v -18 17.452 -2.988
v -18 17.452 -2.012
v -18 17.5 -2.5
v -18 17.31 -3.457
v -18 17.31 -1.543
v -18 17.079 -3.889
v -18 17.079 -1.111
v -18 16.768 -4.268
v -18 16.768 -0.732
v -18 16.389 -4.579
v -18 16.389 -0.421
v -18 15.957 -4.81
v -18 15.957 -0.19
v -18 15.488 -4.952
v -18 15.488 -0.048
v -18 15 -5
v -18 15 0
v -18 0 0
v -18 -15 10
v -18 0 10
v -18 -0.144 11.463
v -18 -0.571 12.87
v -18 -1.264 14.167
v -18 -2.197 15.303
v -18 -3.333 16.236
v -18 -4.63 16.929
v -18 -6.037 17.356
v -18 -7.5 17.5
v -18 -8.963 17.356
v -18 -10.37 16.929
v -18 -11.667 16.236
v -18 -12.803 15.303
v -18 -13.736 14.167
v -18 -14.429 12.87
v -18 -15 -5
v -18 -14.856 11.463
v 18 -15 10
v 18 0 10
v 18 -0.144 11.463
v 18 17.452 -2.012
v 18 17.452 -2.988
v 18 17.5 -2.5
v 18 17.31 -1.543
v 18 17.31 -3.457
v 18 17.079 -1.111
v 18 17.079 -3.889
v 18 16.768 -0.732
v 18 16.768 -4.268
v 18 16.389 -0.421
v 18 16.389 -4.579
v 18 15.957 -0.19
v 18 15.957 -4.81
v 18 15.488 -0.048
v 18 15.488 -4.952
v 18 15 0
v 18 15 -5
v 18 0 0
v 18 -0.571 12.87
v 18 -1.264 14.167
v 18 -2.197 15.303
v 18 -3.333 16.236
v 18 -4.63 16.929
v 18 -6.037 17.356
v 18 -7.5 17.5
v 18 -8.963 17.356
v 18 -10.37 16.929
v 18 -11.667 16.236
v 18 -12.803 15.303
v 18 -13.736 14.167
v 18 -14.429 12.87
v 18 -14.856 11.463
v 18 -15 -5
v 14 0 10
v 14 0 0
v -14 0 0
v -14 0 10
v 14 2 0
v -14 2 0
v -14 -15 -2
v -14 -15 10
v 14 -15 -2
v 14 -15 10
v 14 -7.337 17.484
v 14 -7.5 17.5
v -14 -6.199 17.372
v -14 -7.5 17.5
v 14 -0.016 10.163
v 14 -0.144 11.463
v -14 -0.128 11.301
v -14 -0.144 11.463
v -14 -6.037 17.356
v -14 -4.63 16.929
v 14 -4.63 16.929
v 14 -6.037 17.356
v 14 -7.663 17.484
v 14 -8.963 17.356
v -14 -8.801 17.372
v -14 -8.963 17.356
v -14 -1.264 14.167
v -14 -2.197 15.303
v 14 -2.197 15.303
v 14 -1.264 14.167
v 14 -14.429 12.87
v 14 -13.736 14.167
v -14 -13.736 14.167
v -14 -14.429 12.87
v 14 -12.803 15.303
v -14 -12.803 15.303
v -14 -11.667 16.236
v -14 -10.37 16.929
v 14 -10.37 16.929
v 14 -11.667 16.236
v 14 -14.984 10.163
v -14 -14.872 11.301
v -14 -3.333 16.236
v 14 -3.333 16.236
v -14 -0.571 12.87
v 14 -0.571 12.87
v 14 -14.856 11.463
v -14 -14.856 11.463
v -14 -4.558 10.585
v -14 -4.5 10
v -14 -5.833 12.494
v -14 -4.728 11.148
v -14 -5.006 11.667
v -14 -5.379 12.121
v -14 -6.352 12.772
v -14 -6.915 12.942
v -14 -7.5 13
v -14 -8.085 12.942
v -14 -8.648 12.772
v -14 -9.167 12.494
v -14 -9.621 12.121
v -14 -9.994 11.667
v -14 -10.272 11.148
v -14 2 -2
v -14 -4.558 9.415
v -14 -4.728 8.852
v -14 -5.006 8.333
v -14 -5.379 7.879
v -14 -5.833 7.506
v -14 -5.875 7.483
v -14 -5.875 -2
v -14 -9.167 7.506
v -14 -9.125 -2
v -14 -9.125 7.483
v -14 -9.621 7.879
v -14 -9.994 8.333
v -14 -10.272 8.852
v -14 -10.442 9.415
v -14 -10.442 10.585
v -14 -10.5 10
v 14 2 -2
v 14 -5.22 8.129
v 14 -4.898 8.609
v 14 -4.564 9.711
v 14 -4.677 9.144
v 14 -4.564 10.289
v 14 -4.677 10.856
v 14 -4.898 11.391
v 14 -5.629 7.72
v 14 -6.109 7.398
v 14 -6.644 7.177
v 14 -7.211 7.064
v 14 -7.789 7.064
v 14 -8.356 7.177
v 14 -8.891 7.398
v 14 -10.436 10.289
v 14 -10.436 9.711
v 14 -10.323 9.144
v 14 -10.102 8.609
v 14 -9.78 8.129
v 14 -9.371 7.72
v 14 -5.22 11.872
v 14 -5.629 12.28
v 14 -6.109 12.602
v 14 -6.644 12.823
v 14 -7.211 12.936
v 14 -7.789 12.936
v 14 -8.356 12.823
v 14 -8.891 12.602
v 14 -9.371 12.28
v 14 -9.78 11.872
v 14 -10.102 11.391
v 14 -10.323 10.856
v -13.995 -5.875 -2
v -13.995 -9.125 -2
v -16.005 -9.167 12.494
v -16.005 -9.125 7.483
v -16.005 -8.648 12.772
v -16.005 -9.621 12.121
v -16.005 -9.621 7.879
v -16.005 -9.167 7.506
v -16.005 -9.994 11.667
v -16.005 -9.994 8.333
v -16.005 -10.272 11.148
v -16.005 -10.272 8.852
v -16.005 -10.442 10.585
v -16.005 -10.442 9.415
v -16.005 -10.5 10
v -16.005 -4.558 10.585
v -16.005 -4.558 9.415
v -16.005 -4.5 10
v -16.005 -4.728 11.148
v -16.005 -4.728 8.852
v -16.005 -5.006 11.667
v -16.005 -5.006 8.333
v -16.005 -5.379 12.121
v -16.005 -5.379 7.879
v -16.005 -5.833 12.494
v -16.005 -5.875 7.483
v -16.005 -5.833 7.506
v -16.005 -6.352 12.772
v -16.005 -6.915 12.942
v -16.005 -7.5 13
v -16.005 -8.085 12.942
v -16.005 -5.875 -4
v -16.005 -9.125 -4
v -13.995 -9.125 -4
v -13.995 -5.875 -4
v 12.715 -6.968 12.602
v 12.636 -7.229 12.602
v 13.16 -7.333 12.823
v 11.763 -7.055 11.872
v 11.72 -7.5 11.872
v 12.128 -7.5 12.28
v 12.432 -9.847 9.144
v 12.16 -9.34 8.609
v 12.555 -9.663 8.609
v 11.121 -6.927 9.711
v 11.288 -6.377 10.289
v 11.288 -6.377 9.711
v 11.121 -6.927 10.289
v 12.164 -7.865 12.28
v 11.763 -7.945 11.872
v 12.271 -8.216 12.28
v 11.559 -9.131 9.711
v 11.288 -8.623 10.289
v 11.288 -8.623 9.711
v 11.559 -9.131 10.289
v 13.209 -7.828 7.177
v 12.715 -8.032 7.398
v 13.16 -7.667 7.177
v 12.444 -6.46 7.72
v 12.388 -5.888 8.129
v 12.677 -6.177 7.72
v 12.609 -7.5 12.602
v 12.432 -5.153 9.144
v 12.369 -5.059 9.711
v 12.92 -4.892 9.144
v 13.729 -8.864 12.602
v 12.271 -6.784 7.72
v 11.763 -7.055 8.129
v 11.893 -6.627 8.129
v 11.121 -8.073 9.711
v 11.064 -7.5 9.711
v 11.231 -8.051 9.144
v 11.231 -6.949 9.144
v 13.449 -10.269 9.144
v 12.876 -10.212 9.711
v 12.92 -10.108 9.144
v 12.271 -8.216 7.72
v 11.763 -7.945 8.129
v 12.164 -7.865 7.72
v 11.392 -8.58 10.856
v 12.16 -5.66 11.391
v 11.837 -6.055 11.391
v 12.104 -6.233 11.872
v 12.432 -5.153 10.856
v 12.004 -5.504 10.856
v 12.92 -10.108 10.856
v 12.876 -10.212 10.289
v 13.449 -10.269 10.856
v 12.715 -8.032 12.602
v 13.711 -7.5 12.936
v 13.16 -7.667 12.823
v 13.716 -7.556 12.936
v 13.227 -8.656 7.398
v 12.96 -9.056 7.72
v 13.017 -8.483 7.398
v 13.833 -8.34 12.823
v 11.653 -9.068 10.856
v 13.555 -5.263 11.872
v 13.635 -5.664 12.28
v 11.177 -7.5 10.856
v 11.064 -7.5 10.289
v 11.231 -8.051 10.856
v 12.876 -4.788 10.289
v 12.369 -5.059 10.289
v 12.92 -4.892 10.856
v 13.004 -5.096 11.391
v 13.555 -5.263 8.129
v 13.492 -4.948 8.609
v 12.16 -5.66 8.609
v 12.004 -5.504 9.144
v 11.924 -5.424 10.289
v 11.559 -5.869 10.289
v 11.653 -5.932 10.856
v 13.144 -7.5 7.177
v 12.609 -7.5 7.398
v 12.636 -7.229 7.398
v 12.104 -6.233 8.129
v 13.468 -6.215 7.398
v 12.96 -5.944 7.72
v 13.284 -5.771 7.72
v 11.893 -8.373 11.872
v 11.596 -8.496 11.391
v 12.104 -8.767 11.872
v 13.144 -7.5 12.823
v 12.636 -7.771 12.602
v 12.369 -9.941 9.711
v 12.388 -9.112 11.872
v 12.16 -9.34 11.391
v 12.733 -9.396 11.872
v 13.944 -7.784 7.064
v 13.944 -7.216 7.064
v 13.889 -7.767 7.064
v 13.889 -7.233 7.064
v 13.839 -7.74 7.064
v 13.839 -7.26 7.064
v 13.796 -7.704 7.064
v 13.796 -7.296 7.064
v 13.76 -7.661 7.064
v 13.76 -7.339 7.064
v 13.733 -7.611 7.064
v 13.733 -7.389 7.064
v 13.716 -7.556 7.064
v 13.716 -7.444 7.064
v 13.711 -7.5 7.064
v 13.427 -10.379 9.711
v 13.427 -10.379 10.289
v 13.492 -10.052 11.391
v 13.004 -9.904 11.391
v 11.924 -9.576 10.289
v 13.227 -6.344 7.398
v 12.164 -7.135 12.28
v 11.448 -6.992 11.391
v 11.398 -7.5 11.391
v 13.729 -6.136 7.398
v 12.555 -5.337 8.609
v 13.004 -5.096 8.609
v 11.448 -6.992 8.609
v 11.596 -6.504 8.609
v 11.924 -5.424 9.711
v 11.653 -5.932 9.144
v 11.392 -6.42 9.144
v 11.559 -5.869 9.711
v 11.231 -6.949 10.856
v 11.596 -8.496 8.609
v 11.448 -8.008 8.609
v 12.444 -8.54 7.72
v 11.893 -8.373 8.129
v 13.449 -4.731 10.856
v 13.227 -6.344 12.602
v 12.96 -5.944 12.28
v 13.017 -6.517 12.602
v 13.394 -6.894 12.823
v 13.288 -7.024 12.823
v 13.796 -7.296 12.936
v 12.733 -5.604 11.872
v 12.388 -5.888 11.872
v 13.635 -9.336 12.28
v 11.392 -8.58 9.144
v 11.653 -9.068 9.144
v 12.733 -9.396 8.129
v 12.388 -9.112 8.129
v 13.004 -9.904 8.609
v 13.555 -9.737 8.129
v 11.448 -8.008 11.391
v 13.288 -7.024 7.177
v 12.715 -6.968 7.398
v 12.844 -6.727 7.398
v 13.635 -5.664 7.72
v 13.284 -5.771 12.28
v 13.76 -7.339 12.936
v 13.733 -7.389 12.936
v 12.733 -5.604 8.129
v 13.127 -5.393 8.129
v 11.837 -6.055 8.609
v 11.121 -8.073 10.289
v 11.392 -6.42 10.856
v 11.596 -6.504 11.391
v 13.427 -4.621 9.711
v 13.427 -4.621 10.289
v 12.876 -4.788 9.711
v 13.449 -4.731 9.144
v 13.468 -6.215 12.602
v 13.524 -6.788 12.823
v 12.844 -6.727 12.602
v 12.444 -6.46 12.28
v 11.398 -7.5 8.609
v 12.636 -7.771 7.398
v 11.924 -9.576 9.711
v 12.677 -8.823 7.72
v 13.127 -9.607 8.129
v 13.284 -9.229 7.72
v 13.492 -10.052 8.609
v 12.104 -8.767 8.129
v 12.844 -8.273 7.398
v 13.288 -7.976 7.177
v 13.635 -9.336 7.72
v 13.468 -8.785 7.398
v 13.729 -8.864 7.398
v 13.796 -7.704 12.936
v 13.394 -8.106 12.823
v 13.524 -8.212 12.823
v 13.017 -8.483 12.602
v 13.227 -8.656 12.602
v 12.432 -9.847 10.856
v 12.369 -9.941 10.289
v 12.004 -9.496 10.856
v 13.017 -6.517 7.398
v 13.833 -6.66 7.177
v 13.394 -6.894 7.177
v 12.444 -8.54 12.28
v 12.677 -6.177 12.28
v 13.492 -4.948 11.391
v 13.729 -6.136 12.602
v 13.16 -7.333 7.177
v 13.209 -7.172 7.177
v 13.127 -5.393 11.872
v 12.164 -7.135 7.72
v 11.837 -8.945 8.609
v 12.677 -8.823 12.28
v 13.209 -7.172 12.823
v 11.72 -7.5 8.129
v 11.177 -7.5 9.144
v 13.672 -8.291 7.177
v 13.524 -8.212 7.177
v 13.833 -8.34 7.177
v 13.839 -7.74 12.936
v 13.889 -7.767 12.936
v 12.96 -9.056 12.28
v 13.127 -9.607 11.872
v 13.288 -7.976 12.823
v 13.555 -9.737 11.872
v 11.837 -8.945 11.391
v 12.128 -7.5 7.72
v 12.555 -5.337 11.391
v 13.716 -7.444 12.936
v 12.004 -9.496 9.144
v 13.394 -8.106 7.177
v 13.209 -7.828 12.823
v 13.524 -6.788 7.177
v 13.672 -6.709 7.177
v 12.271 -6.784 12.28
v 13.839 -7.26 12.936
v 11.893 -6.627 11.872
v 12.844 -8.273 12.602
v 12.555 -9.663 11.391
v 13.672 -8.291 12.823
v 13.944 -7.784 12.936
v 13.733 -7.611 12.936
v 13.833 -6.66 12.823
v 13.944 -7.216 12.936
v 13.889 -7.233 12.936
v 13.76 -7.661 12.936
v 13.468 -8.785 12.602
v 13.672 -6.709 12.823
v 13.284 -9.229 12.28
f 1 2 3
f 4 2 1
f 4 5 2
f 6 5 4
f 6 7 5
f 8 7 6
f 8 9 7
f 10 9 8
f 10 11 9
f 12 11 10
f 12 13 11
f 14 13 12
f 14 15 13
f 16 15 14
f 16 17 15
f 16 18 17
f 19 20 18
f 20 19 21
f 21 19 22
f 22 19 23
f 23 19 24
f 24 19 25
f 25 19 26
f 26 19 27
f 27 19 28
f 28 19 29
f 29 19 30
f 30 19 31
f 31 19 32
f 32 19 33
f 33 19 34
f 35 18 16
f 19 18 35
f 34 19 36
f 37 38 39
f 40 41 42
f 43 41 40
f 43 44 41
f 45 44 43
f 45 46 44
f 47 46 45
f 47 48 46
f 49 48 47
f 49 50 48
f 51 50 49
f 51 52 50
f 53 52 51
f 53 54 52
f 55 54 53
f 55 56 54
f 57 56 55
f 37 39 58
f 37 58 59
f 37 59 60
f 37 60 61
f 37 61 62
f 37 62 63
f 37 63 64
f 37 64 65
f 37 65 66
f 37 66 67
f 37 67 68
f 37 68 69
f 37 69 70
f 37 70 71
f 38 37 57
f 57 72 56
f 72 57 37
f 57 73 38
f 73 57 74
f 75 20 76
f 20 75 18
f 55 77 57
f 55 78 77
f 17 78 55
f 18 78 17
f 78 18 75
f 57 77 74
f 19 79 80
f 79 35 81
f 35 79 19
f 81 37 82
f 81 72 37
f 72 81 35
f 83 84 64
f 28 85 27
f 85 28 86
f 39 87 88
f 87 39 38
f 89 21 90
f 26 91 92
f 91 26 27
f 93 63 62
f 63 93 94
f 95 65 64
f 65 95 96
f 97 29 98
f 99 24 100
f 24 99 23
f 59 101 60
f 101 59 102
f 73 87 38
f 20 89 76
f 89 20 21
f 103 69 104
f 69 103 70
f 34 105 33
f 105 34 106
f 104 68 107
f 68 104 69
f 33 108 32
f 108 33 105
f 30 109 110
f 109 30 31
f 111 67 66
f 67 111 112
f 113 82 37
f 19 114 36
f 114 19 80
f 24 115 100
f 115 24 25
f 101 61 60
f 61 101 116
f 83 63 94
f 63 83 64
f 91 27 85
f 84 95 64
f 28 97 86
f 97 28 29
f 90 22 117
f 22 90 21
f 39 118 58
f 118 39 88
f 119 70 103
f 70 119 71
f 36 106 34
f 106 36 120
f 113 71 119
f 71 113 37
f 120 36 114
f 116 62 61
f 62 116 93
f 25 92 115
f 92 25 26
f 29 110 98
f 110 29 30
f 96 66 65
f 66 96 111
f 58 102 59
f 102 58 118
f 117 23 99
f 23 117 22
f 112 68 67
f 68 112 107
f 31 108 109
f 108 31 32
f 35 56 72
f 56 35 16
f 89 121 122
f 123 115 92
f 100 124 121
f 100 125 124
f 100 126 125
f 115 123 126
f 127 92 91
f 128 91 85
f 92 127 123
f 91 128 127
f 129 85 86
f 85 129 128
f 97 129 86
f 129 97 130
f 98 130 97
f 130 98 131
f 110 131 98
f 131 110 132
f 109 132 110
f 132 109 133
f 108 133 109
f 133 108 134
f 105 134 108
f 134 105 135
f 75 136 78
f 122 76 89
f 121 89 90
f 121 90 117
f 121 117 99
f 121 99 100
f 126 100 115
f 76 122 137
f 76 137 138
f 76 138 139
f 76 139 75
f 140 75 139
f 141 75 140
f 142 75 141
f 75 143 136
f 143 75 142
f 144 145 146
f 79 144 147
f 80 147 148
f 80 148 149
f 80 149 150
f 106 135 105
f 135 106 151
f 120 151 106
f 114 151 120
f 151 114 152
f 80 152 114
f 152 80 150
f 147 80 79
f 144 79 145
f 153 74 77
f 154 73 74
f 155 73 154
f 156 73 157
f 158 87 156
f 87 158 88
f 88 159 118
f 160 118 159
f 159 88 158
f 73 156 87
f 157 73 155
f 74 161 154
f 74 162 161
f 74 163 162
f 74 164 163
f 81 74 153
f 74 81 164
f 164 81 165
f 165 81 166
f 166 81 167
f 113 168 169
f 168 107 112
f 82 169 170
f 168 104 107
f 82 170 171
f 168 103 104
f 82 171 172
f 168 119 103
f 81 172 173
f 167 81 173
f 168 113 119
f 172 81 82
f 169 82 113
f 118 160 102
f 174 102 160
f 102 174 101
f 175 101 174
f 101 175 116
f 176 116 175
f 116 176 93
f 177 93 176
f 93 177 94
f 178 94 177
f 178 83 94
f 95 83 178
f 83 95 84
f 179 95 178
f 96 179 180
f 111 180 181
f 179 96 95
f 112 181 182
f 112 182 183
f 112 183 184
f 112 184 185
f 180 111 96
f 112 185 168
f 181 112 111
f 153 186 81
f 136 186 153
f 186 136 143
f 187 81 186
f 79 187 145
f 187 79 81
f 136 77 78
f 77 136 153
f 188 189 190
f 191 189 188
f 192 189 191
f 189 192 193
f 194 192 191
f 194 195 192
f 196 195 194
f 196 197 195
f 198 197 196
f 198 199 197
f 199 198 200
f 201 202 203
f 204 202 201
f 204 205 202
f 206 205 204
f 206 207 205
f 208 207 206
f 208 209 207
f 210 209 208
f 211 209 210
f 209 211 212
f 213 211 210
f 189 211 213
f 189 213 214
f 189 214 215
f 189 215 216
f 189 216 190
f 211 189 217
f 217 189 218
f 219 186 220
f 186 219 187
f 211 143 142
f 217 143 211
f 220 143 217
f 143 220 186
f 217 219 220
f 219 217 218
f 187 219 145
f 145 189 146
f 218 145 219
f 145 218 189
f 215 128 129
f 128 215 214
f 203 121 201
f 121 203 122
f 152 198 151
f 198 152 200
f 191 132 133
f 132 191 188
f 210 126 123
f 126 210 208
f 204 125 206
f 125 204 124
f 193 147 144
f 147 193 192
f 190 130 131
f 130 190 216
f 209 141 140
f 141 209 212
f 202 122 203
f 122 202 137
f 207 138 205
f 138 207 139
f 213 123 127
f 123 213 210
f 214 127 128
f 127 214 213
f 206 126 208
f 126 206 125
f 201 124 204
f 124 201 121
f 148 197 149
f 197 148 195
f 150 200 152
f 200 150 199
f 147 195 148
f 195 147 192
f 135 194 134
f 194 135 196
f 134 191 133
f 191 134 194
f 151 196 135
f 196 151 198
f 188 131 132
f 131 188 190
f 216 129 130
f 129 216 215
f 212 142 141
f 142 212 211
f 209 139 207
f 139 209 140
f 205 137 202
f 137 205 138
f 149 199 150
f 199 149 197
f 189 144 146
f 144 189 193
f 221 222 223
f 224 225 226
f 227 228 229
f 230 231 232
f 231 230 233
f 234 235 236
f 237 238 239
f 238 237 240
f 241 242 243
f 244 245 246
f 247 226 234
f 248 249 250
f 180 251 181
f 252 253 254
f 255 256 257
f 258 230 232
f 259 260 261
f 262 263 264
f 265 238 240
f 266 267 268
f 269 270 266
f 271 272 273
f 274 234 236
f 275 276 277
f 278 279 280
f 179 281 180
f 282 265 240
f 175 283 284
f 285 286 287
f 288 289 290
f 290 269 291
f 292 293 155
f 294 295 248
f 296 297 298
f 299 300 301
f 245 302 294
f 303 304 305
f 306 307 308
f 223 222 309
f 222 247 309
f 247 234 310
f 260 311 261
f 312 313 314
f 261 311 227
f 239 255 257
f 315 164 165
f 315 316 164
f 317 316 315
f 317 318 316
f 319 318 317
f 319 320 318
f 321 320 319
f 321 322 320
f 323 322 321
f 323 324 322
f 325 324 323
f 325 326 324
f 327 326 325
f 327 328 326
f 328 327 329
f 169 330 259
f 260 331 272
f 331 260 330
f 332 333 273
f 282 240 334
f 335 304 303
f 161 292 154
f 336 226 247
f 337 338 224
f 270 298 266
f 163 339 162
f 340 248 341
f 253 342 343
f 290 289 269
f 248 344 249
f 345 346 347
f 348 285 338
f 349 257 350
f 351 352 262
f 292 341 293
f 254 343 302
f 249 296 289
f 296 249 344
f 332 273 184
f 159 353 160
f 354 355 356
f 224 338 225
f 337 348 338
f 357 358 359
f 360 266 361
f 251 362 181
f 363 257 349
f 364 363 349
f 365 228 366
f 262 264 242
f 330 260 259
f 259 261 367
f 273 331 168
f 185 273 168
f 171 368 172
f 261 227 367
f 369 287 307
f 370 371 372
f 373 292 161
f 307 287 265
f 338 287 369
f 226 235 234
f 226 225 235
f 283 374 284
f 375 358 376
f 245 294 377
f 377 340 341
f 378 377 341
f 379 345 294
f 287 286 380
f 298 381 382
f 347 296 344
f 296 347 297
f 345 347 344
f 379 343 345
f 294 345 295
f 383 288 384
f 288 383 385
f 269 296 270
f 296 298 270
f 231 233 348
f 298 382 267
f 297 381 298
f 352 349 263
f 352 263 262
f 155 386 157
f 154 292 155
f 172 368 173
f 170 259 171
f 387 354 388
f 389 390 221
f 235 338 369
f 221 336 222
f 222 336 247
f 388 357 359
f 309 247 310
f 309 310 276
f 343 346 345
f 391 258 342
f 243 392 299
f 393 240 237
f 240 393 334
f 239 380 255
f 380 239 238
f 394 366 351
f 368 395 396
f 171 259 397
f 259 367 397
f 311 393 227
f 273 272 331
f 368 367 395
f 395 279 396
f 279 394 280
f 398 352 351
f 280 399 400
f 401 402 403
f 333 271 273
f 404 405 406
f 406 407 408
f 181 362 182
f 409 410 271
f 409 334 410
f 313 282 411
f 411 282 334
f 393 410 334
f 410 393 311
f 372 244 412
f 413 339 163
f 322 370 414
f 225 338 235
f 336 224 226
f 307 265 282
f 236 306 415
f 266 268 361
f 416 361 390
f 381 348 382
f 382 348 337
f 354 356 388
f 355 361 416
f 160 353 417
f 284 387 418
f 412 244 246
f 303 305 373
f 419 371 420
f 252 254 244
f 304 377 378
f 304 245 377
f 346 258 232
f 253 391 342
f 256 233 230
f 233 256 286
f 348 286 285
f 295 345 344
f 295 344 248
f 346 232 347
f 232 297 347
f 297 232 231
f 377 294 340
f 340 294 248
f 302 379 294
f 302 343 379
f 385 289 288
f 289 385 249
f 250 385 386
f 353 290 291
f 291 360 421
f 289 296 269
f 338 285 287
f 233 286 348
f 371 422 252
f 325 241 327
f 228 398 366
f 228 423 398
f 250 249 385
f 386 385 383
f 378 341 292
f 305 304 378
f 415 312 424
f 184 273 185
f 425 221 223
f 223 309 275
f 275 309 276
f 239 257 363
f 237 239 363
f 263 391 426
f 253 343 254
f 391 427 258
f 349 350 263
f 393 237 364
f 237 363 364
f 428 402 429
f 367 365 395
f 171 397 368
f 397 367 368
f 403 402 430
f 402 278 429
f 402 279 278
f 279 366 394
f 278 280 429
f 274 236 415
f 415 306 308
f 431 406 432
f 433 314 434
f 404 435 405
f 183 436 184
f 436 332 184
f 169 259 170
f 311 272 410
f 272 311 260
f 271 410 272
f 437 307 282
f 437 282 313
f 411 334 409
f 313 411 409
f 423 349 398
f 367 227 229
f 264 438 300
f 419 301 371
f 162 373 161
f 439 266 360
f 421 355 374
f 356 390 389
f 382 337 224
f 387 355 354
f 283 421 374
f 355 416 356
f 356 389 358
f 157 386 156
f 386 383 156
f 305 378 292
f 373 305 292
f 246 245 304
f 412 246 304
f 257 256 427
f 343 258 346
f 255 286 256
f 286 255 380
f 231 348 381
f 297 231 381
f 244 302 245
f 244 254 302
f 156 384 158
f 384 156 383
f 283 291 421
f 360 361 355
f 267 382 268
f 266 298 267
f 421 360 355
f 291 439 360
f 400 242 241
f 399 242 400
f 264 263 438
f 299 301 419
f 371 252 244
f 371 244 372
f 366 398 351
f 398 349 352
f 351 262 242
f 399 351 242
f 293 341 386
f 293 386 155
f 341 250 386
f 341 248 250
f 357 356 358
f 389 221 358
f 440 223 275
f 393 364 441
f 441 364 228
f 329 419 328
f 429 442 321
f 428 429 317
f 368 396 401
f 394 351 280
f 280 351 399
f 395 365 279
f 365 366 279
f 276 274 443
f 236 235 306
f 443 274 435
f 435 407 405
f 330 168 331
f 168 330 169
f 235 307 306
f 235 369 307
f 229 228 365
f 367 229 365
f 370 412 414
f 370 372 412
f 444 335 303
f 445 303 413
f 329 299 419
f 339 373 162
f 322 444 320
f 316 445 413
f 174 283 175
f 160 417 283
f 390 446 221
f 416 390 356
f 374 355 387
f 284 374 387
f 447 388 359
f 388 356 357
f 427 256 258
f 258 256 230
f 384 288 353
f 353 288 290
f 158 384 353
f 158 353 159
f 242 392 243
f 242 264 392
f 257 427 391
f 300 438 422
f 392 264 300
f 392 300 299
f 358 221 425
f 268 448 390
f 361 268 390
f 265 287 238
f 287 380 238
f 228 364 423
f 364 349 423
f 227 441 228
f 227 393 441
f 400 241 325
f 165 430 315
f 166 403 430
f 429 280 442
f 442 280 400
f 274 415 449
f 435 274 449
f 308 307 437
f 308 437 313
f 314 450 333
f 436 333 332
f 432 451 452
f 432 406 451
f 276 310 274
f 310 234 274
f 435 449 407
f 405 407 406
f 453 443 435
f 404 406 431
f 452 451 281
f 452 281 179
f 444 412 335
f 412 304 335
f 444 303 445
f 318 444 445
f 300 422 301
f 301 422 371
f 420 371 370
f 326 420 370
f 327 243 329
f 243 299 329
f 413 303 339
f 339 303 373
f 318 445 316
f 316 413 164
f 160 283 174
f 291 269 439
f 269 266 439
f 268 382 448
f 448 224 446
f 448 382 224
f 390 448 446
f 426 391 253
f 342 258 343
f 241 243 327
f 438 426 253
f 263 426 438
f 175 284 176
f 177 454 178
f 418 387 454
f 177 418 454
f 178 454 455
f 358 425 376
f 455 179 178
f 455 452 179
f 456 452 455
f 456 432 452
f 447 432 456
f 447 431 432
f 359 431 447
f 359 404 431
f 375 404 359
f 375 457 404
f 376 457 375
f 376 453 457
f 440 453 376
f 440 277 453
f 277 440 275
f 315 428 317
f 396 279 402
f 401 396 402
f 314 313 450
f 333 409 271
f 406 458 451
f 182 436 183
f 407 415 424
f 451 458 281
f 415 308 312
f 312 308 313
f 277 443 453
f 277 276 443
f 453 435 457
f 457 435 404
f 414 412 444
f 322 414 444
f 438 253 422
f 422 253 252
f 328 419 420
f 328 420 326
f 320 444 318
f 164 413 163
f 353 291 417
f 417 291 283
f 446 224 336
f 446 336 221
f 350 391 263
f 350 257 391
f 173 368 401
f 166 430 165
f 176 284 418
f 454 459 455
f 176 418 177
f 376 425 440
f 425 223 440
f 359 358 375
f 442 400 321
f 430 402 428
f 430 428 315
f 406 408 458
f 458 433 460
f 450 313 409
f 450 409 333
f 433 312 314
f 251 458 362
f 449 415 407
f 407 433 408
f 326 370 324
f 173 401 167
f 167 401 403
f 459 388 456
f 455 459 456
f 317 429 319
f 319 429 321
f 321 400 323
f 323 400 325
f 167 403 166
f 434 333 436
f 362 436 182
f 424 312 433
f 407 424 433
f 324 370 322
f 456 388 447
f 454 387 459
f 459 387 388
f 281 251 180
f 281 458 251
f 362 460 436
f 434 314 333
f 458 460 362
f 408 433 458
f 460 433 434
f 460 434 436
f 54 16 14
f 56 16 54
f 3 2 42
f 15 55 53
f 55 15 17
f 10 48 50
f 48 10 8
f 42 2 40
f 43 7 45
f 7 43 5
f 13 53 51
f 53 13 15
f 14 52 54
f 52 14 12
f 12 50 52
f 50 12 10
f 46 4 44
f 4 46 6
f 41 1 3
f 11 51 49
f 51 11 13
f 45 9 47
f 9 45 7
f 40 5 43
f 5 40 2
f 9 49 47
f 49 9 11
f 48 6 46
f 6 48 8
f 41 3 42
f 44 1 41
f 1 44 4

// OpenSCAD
/* 
 * Copyright (c) 2017 by Paul-Louis Ageneau
 *
 * This program is free software: you can redistribute it and/or modify
 * it under the terms of the GNU General Public License as published by
 * the Free Software Foundation, either version 3 of the License, or
 * (at your option) any later version.
 *
 * This program is distributed in the hope that it will be useful,
 * but WITHOUT ANY WARRANTY; without even the implied warranty of
 * MERCHANTABILITY or FITNESS FOR A PARTICULAR PURPOSE.  See the
 * GNU General Public License for more details.
 *
 * You should have received a copy of the GNU General Public License
 * along with this program.  If not, see <http://www.gnu.org/licenses/>.
 */

leg_width = 28;
thickness = 5;
$fn = 32;

union() {
    difference() {
        union() {
            translate([0, 0, -thickness/2]) cube([leg_width+4*2, 30, thickness], center=true);
            translate([0, -7.5, 10/2]) union() {
                cube([leg_width+4*2, 15, 10], center=true);
                translate([0, 0, 5]) rotate([0, 90, 0]) cylinder(r = 15/2, h = leg_width+4*2, center = true);
            }
        }
        union() {
            translate([0, -7.5, 20/2]) cube([leg_width, 15+2*2, 20+2*2], center=true);
            translate([-leg_width/2-1, -7.5, 10-14/2]) cube([2+0.01, 3.25, 14], center=true);
            translate([-leg_width/2-1, -7.5, 10]) rotate([0, 90, 0]) cylinder(r = 3, h = 2+0.01, center = true);
        }
    }
    translate([leg_width/2, -7.5, 10]) sphere(r = 3-0.05);
    translate([0, 30/2, -5/2]) rotate([0, 90, 0]) cylinder(r = 5/2, h = leg_width+4*2, center = true);
}
